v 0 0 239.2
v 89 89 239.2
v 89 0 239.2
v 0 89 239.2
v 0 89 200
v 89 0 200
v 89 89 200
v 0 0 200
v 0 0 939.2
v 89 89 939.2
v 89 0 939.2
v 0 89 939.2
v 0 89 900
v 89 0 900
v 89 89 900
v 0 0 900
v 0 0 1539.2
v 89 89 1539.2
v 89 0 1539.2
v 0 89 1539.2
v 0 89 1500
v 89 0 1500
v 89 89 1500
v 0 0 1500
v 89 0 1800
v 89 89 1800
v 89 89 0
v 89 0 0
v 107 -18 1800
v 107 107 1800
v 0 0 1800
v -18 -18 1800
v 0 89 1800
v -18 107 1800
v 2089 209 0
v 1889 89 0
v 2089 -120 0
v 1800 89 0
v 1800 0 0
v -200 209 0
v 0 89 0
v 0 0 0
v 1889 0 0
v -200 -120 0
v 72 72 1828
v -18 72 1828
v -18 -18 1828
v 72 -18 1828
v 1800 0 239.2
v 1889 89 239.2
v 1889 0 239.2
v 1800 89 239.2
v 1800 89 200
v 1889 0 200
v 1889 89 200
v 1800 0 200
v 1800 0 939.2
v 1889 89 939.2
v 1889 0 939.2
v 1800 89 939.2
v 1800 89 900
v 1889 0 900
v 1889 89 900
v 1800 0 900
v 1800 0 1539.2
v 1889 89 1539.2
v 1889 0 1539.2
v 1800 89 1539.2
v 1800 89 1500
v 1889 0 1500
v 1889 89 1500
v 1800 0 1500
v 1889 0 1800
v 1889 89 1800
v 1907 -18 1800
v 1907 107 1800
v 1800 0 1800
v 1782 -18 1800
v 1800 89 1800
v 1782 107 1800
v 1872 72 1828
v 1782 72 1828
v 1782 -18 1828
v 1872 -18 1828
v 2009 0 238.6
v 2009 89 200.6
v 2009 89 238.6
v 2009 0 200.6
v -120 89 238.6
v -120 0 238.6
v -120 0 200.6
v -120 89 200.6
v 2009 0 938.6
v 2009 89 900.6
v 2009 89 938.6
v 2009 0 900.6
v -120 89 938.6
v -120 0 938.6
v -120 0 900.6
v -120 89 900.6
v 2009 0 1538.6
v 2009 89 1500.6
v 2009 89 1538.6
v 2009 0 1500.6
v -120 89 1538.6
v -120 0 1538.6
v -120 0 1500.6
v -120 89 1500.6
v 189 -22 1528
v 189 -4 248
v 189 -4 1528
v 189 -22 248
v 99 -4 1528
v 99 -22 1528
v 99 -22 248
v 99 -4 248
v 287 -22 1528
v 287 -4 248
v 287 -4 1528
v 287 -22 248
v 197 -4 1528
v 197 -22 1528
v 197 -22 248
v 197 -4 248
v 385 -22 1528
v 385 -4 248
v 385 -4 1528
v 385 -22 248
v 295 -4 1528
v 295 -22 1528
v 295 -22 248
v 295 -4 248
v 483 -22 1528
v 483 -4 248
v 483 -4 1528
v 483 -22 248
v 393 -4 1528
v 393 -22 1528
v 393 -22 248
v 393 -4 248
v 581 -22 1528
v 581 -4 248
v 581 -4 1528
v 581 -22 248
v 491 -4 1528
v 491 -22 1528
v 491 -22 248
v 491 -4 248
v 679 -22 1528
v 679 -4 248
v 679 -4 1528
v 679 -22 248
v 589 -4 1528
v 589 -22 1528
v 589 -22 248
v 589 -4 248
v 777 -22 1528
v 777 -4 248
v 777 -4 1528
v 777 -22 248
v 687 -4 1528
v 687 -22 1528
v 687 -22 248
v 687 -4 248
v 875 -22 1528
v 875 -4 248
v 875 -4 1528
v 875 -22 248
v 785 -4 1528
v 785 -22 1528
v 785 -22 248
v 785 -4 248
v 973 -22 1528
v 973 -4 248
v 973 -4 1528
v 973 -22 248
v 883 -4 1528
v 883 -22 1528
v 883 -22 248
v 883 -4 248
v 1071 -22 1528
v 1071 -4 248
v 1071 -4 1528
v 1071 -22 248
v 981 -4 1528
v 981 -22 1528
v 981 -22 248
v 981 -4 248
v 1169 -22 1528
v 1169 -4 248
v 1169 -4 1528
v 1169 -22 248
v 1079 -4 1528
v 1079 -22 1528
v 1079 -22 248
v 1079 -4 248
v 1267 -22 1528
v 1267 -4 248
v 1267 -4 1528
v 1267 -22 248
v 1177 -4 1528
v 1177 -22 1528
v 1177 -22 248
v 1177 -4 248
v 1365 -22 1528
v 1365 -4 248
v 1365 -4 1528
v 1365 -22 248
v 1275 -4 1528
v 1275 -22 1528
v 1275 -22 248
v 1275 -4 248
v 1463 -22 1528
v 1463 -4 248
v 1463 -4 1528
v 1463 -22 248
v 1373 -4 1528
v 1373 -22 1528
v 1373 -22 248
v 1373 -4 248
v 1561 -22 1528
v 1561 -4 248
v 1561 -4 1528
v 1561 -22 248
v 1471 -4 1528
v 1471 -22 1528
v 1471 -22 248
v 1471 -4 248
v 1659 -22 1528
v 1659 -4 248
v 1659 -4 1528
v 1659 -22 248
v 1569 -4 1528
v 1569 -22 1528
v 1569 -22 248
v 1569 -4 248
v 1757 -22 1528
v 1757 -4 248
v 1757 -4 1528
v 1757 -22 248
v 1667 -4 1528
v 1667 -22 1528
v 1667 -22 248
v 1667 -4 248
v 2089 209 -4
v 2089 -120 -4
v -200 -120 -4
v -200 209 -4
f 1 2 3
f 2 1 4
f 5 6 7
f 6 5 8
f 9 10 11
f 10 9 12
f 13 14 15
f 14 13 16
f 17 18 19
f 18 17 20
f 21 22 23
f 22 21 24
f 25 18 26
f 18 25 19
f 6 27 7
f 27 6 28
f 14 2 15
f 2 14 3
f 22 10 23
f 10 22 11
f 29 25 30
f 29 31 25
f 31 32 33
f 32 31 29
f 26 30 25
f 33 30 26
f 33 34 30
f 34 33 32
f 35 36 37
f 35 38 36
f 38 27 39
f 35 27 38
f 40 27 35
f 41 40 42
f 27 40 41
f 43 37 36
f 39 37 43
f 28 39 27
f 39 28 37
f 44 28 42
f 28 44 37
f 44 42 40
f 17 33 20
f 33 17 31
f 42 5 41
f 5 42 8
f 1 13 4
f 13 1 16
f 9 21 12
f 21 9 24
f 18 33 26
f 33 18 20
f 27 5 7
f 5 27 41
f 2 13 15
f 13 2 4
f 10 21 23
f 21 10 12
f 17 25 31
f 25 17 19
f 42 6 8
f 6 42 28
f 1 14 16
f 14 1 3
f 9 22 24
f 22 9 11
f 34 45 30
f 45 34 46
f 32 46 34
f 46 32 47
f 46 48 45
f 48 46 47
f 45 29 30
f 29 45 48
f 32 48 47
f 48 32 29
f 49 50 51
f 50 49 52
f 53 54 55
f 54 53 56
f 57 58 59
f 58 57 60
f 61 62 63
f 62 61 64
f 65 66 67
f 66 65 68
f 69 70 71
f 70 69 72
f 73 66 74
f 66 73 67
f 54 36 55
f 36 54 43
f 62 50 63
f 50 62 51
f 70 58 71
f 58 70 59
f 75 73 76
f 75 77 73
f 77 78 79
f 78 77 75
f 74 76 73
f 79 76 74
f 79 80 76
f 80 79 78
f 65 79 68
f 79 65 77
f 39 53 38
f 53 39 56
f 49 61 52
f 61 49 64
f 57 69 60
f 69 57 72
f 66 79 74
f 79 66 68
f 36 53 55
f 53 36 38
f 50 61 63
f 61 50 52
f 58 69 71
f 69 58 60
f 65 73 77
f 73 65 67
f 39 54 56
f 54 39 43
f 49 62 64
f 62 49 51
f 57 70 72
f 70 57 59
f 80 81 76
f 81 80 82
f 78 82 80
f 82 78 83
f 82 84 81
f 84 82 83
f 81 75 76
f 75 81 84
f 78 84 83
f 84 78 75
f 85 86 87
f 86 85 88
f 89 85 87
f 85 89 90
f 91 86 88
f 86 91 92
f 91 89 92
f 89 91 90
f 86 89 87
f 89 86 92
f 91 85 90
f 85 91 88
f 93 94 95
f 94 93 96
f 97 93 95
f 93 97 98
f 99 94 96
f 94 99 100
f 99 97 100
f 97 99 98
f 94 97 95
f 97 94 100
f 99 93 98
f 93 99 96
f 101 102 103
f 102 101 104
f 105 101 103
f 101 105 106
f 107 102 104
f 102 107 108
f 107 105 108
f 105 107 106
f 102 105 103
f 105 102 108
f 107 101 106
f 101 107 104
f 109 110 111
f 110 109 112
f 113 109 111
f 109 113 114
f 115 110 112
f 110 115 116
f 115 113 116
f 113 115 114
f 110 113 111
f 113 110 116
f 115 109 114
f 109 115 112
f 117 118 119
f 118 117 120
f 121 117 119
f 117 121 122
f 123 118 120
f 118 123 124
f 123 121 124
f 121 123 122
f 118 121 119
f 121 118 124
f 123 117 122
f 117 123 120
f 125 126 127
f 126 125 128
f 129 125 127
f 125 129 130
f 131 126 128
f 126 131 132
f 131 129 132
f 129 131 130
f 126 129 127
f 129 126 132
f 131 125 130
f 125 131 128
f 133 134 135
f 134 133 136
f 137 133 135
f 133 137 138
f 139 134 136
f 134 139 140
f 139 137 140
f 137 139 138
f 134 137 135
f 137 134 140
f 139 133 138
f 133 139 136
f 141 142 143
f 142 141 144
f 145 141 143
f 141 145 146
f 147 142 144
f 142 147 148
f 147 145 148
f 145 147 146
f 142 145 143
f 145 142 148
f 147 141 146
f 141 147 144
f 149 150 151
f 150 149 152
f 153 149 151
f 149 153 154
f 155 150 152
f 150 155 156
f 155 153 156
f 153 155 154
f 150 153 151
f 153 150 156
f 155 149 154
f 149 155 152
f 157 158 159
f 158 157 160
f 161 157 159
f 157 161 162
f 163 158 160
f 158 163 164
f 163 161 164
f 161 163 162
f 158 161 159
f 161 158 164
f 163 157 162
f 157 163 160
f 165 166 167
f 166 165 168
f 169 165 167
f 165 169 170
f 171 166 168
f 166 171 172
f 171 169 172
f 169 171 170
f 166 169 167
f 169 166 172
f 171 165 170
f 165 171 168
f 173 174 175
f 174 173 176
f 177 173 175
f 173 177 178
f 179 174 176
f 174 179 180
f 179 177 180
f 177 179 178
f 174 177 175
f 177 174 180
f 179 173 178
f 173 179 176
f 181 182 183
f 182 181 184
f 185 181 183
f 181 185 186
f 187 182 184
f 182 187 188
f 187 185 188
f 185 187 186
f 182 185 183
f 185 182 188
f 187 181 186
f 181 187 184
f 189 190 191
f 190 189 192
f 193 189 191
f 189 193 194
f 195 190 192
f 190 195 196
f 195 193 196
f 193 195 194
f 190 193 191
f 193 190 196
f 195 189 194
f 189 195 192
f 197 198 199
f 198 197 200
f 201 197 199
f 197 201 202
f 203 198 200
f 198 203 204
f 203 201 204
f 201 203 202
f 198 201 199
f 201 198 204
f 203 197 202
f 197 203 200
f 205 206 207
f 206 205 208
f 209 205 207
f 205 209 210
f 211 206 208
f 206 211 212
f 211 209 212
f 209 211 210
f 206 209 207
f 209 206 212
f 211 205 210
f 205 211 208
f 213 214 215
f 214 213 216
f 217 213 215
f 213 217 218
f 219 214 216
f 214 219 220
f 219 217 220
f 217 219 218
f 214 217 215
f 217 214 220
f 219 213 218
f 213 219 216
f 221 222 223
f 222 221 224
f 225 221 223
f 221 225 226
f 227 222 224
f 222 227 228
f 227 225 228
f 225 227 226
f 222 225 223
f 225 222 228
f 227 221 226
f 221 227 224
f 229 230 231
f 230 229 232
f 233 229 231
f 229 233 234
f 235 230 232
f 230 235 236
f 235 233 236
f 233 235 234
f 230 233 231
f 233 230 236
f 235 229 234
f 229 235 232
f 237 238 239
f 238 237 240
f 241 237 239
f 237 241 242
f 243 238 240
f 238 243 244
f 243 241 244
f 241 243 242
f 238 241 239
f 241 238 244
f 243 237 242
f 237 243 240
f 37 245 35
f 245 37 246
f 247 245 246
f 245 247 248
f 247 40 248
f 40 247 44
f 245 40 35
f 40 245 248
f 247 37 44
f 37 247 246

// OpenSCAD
// file: hashira_lib.scad
// HASHIRA — shared dimensions (mm)
// Tunable via -D on the command line / OpenSCAD MCP variables

post_w = 89;          // ~3.5" nominal 4x4
post_d = 89;
post_h = 1800;        // above-grade height shown
rail_w = 89;          // rail width (through post face)
rail_t = 38;          // rail thickness
rail_len = 1800;      // bay center-to-center approx
bay_cc = 1800;        // post center spacing
cap_overhang = 18;
cap_h = 28;

// rail elevations from post bottom (above grade in model)
rail_z_low = 200;
rail_z_mid = 900;
rail_z_top = 1500;

ease = 1.2;           // seasonal mortise ease
peg_d = 10;
wood_post = [0.55, 0.35, 0.18];
wood_rail = [0.42, 0.52, 0.34];
wood_peg  = [0.72, 0.62, 0.42];

module hashira_post(h=post_h, w=post_w, d=post_d) {
  color(wood_post) cube([w, d, h], center=false);
}

module hashira_cap(w=post_w, d=post_d, oh=cap_overhang, h=cap_h) {
  color([0.88, 0.85, 0.78])
  translate([-oh, -oh, 0])
    linear_extrude(height=h, scale=0.72)
      square([w + 2*oh, d + 2*oh], center=false);
}

module nuki_rail(len=rail_len, w=rail_w, t=rail_t) {
  color(wood_rail) cube([len, w, t], center=false);
}

module peg(h=post_d + 20, d=peg_d) {
  color(wood_peg) cylinder(h=h, d=d, $fn=24);
}
// main file
// HASHIRA bay — full post + triple nuki + cladding hints + caps
include <hashira_lib.scad>

show_cladding = 1;
cladding_gap = 8;
board_w = 90;
board_t = 18;

module mortised_post() {
  difference() {
    hashira_post();
    for (z = [rail_z_low, rail_z_mid, rail_z_top]) {
      translate([-1, (post_d - rail_w)/2 - ease/2, z])
        cube([post_w + 2, rail_w + ease, rail_t + ease]);
    }
  }
  translate([0, 0, post_h]) hashira_cap();
}

module bay_assembly() {
  // left / right posts
  mortised_post();
  translate([bay_cc, 0, 0]) mortised_post();

  // through rails
  for (z = [rail_z_low, rail_z_mid, rail_z_top]) {
    translate([-120, (post_d - rail_w)/2, z + ease/2])
      nuki_rail(len=bay_cc + post_w + 240);
  }

  // cladding rain-screen boards
  if (show_cladding) {
    board_span = bay_cc - post_w - 20;
    n = floor(board_span / (board_w + cladding_gap));
    start_x = post_w + 10;
    color([0.78, 0.74, 0.62])
    for (i = [0 : n - 1]) {
      translate([
        start_x + i * (board_w + cladding_gap),
        -board_t - 4,
        rail_z_low + rail_t + 10
      ])
        cube([board_w, board_t, rail_z_top - rail_z_low - 20]);
    }
  }

  // grade
  color([0.25, 0.32, 0.22, 0.55])
    translate([-200, -120, -4])
      cube([bay_cc + post_w + 400, post_d + 240, 4]);
}

bay_assembly();
